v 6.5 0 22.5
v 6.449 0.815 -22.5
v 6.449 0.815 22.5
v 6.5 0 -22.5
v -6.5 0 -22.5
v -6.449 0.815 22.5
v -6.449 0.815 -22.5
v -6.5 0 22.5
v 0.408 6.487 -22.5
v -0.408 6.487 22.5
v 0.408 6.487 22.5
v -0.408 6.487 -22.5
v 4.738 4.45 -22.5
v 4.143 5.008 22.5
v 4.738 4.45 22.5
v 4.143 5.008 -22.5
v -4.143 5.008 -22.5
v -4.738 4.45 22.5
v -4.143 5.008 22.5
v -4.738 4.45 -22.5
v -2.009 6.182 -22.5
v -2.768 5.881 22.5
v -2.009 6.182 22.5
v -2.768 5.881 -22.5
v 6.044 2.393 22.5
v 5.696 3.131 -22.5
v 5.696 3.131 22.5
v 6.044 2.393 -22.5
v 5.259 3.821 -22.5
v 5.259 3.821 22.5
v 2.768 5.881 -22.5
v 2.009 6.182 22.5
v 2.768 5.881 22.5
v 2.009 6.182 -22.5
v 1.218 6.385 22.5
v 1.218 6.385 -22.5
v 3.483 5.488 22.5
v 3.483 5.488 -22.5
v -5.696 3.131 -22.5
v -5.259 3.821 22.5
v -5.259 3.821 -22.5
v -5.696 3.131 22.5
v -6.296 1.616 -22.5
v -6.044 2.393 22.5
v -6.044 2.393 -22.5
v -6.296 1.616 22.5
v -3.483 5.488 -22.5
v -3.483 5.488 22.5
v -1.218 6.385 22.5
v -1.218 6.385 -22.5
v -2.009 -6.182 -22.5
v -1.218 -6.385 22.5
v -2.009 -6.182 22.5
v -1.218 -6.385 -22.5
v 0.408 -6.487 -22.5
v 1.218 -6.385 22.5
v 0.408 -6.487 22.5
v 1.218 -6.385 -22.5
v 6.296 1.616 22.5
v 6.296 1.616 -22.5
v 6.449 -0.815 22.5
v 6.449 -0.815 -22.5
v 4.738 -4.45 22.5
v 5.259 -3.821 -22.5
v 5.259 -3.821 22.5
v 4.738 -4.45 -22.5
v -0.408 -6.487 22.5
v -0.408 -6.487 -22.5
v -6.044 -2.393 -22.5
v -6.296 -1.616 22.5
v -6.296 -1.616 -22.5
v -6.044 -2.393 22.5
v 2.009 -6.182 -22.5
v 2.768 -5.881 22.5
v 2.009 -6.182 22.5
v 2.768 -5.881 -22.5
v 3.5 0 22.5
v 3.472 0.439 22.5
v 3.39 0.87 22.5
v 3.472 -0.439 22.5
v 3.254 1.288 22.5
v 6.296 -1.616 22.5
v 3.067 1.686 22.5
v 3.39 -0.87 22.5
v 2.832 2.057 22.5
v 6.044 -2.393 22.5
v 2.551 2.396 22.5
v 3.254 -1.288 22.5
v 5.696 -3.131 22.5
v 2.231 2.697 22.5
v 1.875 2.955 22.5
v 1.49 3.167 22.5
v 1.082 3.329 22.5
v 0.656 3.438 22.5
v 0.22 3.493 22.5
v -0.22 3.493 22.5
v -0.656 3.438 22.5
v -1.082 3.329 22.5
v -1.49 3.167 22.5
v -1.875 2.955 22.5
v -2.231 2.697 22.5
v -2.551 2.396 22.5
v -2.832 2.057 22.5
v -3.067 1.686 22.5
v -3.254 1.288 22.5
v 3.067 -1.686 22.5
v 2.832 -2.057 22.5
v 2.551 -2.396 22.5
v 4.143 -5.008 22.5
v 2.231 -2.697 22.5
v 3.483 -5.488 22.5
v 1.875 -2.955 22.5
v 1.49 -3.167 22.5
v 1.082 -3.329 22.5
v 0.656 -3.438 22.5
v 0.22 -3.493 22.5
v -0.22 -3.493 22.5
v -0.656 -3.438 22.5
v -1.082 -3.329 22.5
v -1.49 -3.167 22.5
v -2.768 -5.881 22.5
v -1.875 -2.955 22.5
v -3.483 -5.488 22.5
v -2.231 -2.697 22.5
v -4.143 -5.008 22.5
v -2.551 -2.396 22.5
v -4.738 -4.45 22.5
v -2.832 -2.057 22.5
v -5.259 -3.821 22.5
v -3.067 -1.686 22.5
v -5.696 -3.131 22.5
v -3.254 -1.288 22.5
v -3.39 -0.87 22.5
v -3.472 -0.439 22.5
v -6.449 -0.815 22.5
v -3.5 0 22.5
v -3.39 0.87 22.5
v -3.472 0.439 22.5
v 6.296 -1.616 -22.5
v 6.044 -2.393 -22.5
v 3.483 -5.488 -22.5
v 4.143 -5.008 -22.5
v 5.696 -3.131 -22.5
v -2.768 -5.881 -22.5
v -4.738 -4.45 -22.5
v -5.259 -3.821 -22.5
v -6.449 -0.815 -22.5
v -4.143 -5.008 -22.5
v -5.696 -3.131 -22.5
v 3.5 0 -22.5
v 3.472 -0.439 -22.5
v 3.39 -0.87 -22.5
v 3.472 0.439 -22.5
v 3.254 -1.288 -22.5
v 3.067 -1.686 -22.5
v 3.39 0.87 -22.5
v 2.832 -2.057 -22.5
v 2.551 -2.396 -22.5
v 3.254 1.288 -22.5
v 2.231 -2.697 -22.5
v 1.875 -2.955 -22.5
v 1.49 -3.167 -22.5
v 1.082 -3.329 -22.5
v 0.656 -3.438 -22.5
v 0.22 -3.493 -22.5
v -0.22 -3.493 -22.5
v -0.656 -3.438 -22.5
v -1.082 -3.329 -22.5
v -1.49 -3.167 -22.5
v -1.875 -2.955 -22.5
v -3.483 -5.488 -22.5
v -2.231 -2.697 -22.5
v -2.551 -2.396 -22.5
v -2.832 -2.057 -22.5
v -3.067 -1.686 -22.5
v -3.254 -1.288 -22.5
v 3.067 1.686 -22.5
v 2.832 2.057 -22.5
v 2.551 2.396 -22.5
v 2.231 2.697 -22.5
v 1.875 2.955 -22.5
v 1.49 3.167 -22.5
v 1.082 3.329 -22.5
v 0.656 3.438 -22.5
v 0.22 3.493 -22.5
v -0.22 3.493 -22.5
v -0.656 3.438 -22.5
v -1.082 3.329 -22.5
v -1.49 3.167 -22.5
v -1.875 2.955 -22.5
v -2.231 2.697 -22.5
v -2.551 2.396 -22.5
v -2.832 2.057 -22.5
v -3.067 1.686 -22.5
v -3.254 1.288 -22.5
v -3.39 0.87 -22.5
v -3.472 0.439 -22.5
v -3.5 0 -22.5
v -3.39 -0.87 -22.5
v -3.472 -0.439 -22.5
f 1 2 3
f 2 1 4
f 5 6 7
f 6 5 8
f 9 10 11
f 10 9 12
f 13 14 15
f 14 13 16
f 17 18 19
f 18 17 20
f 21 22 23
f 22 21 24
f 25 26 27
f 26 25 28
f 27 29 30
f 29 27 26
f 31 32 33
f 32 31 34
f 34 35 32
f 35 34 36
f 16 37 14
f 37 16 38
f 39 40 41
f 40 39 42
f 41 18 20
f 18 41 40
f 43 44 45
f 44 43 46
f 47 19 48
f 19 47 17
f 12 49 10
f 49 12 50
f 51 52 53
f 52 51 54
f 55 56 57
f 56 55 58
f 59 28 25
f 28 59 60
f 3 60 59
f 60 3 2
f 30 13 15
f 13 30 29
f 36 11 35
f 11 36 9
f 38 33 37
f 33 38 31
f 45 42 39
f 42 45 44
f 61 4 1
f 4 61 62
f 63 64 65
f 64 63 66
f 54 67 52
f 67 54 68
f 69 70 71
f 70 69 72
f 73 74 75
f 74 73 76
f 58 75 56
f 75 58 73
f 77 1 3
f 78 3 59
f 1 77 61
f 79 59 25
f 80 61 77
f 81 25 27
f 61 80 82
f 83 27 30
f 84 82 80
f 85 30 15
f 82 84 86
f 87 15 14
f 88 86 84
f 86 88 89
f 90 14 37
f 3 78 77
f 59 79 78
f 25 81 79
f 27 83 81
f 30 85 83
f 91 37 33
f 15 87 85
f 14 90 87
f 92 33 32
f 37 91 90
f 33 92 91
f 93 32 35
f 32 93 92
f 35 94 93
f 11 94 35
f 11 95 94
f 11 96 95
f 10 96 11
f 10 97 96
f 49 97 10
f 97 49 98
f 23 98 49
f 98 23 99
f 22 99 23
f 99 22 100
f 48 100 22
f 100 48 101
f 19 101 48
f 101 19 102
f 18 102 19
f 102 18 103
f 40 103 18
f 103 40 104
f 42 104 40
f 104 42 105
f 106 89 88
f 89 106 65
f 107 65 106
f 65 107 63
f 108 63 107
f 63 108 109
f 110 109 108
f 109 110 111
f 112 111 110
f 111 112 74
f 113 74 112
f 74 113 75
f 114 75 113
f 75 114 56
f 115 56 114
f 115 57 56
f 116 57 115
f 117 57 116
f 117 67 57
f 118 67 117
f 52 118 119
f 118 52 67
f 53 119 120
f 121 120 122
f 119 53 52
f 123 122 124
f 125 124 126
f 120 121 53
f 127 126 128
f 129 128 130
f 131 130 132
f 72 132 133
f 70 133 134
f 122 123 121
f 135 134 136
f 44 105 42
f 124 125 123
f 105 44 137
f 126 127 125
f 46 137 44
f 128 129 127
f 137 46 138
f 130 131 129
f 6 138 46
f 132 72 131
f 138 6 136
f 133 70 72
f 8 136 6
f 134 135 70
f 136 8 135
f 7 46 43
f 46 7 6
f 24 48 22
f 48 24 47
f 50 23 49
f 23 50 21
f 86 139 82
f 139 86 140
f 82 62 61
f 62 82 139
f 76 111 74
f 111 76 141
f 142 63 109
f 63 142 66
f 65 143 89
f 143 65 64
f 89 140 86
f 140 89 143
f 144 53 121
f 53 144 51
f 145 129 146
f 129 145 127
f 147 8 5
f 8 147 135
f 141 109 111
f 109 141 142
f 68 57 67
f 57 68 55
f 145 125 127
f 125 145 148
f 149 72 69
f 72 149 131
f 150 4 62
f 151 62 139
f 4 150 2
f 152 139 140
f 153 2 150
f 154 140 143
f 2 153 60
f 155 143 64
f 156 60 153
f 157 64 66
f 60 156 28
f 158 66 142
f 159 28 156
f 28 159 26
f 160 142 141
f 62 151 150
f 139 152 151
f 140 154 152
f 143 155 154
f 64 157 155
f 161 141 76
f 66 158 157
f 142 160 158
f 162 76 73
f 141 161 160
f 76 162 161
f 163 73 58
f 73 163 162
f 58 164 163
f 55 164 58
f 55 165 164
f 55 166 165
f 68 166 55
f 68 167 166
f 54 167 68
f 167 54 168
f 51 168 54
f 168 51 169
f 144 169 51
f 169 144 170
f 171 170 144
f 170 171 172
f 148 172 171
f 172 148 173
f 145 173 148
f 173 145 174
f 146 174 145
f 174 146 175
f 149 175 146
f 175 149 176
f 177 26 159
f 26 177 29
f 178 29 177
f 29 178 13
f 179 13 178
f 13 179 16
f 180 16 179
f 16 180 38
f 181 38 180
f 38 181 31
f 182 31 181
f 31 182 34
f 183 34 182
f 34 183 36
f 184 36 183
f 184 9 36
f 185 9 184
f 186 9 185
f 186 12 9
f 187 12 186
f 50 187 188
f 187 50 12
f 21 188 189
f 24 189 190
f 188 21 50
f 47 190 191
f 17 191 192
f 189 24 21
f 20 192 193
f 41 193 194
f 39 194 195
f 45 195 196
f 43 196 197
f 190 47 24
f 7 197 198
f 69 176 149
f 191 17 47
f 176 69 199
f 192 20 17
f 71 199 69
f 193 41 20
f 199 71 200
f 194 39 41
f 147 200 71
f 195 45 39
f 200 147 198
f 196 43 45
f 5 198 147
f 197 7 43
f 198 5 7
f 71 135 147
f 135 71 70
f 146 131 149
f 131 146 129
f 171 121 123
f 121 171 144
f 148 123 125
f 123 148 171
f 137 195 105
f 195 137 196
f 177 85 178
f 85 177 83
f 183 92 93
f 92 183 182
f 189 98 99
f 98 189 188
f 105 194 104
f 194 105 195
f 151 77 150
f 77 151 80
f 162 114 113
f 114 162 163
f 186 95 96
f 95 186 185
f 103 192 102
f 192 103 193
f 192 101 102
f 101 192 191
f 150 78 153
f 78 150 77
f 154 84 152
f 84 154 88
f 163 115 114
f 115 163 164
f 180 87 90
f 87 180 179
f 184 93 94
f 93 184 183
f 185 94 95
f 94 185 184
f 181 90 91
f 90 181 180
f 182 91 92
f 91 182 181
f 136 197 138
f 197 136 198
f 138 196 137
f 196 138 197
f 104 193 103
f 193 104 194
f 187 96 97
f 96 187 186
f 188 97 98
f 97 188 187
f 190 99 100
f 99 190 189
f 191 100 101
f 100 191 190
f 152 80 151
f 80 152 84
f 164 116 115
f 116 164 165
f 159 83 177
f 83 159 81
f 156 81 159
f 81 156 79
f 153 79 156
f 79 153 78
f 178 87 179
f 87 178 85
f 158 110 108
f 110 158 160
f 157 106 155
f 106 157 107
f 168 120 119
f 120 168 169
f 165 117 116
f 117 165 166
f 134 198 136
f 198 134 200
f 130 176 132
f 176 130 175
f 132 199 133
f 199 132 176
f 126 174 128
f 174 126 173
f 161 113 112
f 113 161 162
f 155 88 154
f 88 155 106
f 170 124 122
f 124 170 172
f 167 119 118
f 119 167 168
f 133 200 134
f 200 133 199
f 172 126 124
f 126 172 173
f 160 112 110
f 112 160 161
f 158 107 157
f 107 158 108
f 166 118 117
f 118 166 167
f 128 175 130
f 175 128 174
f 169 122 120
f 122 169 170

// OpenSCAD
$fn = 50;


difference() {
	union() {
		translate(v = [0, 0, -22.5000000000]) {
			cylinder(h = 45, r = 6.5000000000);
		}
	}
	union() {
		translate(v = [0, 0, -100.0000000000]) {
			cylinder(h = 200, r = 3.5000000000);
		}
	}
}
